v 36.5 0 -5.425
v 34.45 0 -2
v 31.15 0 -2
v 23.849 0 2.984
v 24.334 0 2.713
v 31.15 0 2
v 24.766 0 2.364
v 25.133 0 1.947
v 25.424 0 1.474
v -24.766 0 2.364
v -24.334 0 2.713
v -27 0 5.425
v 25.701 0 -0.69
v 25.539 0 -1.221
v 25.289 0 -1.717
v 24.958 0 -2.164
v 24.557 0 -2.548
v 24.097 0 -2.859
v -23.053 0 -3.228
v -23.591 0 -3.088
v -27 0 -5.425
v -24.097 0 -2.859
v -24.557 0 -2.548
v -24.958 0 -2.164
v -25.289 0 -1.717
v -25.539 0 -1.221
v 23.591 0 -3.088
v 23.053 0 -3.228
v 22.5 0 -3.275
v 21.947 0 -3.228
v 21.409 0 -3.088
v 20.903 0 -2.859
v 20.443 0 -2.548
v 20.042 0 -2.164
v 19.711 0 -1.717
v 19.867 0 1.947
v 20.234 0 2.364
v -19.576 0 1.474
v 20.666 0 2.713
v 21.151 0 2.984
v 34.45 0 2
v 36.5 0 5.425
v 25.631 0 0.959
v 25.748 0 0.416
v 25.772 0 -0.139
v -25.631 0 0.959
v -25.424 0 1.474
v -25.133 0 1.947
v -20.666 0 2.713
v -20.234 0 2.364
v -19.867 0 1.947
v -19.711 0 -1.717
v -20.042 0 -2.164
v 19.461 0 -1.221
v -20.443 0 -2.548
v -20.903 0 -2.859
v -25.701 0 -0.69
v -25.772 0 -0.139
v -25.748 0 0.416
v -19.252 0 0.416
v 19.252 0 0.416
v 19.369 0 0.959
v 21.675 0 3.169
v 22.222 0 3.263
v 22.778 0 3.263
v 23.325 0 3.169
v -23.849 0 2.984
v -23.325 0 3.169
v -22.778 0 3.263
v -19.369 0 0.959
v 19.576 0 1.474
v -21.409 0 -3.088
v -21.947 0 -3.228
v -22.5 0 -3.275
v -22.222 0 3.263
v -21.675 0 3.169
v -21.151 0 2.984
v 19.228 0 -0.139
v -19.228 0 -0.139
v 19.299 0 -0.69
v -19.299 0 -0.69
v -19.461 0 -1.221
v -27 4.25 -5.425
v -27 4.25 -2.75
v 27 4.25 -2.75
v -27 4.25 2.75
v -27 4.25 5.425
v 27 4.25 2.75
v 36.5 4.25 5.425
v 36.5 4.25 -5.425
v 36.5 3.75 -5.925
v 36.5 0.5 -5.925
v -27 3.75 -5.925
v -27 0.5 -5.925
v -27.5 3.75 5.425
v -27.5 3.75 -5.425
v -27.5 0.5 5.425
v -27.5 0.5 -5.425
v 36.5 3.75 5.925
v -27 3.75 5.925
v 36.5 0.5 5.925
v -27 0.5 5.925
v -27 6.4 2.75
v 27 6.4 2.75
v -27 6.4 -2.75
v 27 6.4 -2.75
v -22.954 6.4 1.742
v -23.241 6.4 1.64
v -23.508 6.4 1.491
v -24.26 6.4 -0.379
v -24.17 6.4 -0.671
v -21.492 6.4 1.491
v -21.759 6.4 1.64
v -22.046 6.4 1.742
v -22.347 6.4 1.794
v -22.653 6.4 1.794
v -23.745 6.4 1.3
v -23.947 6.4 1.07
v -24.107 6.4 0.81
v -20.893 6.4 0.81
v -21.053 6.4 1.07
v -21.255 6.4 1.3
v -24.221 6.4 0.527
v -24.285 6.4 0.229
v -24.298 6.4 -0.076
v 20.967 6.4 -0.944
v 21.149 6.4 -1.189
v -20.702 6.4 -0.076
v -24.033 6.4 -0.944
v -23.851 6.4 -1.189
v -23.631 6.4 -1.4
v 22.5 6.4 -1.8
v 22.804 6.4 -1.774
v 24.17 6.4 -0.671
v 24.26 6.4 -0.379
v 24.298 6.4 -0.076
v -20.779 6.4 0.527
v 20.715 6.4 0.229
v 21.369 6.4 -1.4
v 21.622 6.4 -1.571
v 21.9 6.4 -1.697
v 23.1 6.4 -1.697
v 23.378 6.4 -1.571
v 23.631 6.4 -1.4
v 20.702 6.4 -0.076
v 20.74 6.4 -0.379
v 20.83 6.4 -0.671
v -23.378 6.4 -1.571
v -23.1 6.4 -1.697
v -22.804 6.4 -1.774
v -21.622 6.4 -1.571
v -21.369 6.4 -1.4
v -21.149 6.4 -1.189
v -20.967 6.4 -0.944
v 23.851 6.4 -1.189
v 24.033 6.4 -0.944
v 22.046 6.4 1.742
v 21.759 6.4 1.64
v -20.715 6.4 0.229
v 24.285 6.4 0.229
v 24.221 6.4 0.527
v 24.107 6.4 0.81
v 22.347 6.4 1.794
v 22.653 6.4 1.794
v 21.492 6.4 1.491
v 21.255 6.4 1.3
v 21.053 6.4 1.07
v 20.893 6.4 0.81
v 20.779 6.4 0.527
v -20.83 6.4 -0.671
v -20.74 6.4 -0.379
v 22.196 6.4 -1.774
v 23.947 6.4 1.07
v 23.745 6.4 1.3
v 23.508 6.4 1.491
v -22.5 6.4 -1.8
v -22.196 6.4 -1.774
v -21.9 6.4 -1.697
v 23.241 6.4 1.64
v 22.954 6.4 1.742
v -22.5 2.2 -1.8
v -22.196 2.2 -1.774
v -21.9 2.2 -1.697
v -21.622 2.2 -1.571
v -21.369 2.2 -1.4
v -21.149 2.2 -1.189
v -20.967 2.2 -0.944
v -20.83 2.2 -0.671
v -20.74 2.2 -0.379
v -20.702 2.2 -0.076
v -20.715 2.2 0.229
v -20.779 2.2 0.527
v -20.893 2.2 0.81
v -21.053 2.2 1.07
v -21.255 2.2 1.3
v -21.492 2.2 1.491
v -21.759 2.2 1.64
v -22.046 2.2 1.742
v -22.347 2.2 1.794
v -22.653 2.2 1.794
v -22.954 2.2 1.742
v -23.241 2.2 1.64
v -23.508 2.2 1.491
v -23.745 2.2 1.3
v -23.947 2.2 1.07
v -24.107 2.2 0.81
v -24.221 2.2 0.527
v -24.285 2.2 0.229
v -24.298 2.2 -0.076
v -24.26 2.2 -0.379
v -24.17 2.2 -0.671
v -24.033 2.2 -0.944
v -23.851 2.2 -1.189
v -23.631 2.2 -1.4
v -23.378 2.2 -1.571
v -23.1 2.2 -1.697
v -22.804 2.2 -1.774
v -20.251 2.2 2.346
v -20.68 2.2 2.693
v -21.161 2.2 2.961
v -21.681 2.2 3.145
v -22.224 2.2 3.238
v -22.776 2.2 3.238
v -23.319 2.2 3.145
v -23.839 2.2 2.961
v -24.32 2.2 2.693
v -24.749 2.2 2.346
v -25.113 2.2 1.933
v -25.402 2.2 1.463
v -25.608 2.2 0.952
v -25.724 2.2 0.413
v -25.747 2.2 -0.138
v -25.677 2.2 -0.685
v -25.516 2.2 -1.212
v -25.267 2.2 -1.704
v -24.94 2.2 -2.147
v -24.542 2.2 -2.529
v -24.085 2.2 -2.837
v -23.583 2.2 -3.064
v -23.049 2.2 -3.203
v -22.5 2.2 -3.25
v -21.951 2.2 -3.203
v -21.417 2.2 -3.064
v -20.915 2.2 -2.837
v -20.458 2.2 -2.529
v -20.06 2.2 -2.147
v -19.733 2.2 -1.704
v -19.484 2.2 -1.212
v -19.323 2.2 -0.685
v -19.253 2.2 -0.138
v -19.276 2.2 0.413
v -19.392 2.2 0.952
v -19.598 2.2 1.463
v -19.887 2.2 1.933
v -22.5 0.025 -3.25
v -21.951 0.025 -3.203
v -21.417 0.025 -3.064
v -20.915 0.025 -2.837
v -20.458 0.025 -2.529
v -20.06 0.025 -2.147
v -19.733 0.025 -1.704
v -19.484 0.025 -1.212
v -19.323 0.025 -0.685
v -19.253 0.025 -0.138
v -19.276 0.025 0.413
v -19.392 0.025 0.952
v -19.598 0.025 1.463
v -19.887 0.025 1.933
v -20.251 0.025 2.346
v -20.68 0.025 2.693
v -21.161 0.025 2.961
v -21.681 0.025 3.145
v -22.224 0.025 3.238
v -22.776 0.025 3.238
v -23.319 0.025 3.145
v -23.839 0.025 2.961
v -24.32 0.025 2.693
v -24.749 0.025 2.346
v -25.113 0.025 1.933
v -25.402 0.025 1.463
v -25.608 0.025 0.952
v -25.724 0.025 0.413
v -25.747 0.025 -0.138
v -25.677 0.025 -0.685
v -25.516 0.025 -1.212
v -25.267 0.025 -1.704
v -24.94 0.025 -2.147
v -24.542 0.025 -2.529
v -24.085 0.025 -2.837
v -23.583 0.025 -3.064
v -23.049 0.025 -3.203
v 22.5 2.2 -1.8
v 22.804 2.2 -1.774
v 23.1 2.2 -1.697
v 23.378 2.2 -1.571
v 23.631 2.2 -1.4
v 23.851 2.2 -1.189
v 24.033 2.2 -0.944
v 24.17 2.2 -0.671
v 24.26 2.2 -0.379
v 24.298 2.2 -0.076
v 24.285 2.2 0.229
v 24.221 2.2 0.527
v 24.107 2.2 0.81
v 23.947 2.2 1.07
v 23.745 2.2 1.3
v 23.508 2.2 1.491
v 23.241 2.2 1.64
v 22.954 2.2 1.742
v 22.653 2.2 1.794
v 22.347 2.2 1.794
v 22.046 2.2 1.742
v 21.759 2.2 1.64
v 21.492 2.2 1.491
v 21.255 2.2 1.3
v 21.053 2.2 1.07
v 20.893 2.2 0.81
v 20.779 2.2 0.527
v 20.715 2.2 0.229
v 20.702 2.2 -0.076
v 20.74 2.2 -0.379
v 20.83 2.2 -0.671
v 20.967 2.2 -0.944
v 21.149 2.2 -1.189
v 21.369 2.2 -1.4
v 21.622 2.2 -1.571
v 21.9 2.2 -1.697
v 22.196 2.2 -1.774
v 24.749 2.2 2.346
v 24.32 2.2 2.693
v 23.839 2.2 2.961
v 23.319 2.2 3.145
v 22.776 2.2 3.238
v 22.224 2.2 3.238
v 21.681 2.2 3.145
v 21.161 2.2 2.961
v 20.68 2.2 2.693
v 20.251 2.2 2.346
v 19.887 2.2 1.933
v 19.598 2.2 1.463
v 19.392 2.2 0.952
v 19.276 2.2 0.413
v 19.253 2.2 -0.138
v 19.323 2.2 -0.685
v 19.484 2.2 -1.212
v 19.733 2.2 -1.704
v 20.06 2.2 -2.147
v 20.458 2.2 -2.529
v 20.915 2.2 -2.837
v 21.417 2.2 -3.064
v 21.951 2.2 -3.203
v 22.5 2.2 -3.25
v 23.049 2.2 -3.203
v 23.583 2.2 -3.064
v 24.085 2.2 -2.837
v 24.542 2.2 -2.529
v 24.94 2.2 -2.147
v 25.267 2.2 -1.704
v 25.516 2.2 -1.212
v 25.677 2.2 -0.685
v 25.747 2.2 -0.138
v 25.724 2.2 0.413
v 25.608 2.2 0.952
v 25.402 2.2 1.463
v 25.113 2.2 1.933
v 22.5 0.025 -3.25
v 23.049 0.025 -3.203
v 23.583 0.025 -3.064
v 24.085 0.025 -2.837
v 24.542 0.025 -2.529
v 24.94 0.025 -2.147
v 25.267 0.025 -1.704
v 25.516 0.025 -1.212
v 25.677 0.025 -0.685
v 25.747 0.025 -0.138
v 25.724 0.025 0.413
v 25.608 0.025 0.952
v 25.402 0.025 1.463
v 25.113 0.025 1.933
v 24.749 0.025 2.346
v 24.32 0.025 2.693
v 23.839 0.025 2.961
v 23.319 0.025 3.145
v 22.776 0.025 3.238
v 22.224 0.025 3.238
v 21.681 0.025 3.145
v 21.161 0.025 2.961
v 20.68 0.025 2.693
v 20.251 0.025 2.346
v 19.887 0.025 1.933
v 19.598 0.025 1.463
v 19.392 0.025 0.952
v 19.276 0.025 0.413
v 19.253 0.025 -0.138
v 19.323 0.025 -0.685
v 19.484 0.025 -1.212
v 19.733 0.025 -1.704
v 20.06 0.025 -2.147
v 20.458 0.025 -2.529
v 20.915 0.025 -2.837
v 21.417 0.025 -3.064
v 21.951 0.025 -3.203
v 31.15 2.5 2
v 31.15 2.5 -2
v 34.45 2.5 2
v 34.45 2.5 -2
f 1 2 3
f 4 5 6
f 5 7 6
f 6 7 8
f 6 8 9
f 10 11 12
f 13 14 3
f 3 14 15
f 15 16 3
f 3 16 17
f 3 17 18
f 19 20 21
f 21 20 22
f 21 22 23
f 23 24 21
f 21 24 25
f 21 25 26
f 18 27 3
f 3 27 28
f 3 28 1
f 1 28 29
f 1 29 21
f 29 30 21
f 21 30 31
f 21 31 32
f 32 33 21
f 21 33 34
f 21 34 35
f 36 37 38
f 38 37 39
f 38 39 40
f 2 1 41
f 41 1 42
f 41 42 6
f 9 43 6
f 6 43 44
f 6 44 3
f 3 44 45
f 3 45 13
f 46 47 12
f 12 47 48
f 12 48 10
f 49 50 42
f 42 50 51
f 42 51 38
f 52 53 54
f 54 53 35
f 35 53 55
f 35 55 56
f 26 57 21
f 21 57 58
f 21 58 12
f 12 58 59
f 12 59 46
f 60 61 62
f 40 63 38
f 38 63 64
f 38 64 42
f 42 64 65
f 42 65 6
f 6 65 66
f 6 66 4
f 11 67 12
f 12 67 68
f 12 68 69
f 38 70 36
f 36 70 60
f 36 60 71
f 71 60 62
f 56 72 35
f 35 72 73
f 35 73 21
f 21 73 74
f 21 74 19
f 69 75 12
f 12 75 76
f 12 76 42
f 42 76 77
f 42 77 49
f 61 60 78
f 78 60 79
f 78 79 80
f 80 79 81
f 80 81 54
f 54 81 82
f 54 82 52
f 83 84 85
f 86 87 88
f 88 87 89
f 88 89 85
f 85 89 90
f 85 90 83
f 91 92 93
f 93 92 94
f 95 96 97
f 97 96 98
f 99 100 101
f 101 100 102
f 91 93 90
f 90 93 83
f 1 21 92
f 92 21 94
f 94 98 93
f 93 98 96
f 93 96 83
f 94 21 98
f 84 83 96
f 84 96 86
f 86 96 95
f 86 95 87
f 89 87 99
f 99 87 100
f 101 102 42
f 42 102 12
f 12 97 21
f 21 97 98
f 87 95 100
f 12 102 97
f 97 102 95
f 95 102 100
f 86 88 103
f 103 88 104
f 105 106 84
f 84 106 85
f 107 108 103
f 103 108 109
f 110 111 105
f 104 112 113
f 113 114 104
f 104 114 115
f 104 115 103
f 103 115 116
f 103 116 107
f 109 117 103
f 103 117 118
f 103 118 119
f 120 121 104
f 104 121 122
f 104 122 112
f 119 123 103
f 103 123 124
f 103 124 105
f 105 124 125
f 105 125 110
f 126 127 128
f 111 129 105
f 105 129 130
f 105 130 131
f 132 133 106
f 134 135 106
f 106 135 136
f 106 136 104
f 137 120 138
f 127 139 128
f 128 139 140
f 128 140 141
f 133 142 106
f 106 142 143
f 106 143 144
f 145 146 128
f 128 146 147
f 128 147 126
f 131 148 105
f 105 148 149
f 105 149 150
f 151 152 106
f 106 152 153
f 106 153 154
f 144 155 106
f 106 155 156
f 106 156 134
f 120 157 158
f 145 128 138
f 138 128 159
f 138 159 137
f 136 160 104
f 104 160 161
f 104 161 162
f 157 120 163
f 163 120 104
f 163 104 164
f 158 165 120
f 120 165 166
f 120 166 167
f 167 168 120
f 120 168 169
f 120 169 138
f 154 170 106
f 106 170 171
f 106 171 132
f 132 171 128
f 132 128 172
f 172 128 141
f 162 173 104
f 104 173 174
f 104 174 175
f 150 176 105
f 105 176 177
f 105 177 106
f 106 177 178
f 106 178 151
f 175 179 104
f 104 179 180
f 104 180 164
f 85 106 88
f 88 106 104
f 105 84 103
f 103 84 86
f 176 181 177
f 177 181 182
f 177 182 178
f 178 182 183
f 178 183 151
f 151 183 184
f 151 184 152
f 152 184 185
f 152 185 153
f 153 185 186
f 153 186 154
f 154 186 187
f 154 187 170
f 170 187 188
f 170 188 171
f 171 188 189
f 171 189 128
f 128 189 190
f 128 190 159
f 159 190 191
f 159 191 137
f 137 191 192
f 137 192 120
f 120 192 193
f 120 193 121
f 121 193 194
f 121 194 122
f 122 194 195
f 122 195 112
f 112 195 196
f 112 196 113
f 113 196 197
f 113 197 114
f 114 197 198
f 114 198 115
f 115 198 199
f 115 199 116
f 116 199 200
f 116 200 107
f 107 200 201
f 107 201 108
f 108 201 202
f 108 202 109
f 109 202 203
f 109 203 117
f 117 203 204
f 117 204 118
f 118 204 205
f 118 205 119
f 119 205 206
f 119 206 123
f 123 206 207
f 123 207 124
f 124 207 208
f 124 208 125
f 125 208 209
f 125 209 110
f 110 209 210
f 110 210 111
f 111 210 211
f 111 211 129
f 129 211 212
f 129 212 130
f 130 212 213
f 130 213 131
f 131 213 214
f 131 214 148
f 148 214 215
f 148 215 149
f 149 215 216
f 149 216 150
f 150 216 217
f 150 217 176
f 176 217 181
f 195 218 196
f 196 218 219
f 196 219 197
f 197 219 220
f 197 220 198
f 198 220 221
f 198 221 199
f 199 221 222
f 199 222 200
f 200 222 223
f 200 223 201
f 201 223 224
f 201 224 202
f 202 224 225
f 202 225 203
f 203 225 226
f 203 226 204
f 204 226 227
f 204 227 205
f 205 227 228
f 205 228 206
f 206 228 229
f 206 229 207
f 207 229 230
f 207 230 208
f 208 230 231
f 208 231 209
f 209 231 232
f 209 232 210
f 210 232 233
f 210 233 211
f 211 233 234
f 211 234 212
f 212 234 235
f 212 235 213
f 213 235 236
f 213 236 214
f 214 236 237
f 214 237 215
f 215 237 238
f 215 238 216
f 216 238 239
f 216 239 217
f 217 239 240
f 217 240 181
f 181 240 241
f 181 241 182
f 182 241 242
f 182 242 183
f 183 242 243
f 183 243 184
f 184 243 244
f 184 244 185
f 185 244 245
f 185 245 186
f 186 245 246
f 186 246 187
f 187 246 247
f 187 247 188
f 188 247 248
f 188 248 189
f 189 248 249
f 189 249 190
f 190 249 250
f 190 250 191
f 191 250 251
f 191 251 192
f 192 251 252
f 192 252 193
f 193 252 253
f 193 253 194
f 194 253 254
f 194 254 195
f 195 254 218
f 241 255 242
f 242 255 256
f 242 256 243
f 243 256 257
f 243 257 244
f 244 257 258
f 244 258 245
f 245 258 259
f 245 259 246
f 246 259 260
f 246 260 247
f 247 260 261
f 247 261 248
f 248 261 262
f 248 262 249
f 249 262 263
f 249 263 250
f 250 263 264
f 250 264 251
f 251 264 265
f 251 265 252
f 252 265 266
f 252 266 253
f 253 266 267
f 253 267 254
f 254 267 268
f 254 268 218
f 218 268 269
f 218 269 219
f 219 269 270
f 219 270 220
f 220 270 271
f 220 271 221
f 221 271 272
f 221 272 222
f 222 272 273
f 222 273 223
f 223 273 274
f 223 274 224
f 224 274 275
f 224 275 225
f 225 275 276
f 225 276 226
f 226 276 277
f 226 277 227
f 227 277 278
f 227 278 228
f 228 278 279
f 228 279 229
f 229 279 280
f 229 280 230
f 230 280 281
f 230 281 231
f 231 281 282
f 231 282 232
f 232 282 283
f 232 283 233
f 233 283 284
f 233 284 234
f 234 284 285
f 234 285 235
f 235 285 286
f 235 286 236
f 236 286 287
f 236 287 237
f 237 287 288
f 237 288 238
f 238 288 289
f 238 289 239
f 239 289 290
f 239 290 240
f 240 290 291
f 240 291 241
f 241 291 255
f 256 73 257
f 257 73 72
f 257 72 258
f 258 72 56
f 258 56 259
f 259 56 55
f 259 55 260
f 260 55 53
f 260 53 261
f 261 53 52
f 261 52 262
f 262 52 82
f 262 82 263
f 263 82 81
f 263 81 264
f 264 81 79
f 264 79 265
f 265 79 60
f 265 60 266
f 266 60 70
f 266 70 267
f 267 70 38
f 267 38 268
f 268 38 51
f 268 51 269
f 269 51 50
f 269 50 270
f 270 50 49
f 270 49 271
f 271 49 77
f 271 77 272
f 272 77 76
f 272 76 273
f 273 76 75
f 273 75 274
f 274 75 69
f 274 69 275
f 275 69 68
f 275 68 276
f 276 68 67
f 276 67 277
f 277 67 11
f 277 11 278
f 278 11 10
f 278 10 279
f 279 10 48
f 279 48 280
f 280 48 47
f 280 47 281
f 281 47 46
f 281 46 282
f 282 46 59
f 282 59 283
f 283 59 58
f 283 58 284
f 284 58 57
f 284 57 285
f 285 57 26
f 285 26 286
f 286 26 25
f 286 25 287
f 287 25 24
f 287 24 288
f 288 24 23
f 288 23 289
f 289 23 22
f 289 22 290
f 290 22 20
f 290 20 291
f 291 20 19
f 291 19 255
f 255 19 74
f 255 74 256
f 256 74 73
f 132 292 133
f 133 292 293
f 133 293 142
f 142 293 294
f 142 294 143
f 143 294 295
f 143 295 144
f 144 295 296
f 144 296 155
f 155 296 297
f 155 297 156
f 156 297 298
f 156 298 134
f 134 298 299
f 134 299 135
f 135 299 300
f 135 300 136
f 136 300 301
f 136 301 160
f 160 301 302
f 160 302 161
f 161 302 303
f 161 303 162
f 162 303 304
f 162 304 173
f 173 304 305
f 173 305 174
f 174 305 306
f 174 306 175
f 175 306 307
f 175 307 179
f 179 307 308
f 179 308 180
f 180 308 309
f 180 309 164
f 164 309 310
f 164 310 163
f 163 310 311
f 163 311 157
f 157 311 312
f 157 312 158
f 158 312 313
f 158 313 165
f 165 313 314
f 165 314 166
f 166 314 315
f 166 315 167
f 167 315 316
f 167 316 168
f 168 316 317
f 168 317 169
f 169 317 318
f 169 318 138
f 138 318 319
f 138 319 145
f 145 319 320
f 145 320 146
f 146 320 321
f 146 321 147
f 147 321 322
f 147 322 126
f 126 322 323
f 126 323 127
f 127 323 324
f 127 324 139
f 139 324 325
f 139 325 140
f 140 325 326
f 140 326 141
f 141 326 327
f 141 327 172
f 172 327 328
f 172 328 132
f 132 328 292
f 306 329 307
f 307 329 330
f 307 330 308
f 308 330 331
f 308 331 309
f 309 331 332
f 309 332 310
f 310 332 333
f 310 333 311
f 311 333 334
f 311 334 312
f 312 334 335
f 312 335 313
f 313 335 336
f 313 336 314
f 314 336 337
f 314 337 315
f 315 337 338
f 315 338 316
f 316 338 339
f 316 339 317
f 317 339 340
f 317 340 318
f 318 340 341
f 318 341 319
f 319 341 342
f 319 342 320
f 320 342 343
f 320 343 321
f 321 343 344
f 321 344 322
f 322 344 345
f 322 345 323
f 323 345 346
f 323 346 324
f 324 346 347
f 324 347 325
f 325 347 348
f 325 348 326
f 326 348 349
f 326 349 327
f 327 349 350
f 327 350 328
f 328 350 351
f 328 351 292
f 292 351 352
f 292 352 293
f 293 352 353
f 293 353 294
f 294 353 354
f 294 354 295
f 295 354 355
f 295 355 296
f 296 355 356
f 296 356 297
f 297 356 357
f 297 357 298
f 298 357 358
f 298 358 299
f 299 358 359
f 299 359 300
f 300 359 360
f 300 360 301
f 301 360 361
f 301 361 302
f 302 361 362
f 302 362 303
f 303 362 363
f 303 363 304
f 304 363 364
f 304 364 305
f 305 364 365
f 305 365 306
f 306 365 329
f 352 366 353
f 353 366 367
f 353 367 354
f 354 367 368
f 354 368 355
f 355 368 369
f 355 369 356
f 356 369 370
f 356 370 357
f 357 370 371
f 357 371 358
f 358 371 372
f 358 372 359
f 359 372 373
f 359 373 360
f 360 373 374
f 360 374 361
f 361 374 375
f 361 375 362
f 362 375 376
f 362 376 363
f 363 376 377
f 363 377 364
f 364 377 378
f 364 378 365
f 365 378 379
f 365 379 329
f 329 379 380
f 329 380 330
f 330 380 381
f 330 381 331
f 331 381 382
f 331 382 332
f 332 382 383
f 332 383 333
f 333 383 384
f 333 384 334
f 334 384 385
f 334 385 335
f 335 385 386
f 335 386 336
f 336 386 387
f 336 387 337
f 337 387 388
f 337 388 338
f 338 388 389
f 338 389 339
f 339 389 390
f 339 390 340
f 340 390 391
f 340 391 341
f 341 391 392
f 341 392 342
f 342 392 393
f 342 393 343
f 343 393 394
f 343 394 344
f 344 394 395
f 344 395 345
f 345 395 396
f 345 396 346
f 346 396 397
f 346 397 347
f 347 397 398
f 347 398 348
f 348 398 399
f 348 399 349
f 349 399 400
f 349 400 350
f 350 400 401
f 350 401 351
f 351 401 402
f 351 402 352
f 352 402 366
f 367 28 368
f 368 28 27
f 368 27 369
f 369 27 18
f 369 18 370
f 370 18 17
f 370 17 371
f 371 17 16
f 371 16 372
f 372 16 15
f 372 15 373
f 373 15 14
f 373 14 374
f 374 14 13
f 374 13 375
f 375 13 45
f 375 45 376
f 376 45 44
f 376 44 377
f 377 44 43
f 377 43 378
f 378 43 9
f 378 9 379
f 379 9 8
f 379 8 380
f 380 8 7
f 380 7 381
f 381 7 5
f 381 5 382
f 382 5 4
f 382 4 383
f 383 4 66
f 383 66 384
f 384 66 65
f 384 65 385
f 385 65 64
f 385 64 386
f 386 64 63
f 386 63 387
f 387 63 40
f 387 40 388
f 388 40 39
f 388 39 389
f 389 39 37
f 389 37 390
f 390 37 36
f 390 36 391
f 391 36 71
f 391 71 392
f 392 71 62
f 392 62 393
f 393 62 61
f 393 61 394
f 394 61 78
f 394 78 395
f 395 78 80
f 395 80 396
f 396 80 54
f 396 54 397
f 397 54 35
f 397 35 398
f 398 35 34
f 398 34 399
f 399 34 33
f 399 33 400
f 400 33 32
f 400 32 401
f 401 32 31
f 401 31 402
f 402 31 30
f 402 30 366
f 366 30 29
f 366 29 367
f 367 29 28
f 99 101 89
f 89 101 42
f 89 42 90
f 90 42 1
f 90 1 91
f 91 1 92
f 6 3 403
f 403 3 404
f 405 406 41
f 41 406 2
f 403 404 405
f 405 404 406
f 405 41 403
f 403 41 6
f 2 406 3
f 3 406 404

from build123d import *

# Parameters (mm, degrees)
SKETCH1_W                     = 55
SKETCH1_H                     = 11.85
BOSS_EXTRUDE1_DEPTH           = 4.25
CHAMFER1_SIZE                 = 0.5
BOSS_EXTRUDE2_DEPTH           = 27
BOSS_EXTRUDE2_DEPTH_BACK      = 27
SKETCH7_W                     = 5.5
SKETCH7_H                     = 2.15
CBORE_FOR_M3_SHCS1_AT_2_COUNT = 2
CBORE_FOR_M3_SHCS1_AT_2_PITCH = 45
BOSS_EXTRUDE3_DEPTH           = 9
CUT_EXTRUDE1_DEPTH            = 2
CUT_EXTRUDE1_DEPTH_BACK       = 2
SKETCH10_W                    = 3.3
SKETCH10_H                    = 2.5


with BuildPart() as part:
    # Sketch1 → Boss-Extrude1 (new body)
    with BuildSketch(Plane(origin=(0, 0, 0), x_dir=(1, 0, 0), z_dir=(0, 1, 0))):
        Rectangle(SKETCH1_W, SKETCH1_H)
    extrude(amount=BOSS_EXTRUDE1_DEPTH)

    # Chamfer1
    chamfer1_edges = [part.edges().sort_by_distance(p)[0] for p in [
        (-27.5, 4.25, 0),
        (0, 4.25, 5.925),
        (0, 0, 5.925),
        (-27.5, 0, 0),
        (0, 0, -5.925),
        (-27.5, 2.125, 5.925),
        (-27.5, 2.125, -5.925),
        (0, 4.25, -5.925),
    ]]
    chamfer(chamfer1_edges, length=CHAMFER1_SIZE)

    # Sketch7 → Boss-Extrude2 (add, two sides: drawn at the far end of the back side and taken through both)
    with BuildSketch(Plane(origin=(0, 0, 0), x_dir=(0, 0, -1), z_dir=(1, 0, 0)).offset(-BOSS_EXTRUDE2_DEPTH_BACK)):
        with Locations((0, 5.325)):
            Rectangle(SKETCH7_W, SKETCH7_H)
    extrude(amount=BOSS_EXTRUDE2_DEPTH + BOSS_EXTRUDE2_DEPTH_BACK)

    # Sketch6 → CBORE for M3 SHCS1 (revolve, cut)
    with BuildSketch(Plane(origin=(22.5, 0, 0), x_dir=(0, 0, -1), z_dir=(1, 0, 0))):
        Polygon((0, 0), (0, 6.4), (1.8, 6.4), (1.8, 2.2), (3.25, 2.2), (3.25, 0.025), (3.275, 0), align=None)
    cbore_for_m3_shcs1 = revolve(axis=Axis((22.5, -6.35, 0), (0, 1, 0)), mode=Mode.SUBTRACT)

    # CBORE for M3 SHCS1 at 2: CBORE for M3 SHCS1 ×2
    with Locations(*[(-i * CBORE_FOR_M3_SHCS1_AT_2_PITCH, 0, 0) for i in range(1, CBORE_FOR_M3_SHCS1_AT_2_COUNT)]):
        add(cbore_for_m3_shcs1, mode=Mode.SUBTRACT)

    # Sketch8 → Boss-Extrude3 (add)
    with BuildSketch(Plane(origin=(27.5, 0, 0), x_dir=(0, 0, -1), z_dir=(1, 0, 0))):
        Polygon((5.425, 4.25), (-5.425, 4.25), (-5.925, 3.75), (-5.925, 0.5), (-5.425, 0), (5.425, 0), (5.925, 0.5), (5.925, 3.75), align=None)
    extrude(amount=BOSS_EXTRUDE3_DEPTH)

    # Sketch10 → Cut-Extrude1 (cut, two sides: drawn at the far end of the back side and taken through both)
    with BuildSketch(Plane.XY.offset(-CUT_EXTRUDE1_DEPTH_BACK)):
        with Locations((32.8, 1.25)):
            Rectangle(SKETCH10_W, SKETCH10_H)
    extrude(amount=CUT_EXTRUDE1_DEPTH + CUT_EXTRUDE1_DEPTH_BACK, mode=Mode.SUBTRACT)


solid = part.part
